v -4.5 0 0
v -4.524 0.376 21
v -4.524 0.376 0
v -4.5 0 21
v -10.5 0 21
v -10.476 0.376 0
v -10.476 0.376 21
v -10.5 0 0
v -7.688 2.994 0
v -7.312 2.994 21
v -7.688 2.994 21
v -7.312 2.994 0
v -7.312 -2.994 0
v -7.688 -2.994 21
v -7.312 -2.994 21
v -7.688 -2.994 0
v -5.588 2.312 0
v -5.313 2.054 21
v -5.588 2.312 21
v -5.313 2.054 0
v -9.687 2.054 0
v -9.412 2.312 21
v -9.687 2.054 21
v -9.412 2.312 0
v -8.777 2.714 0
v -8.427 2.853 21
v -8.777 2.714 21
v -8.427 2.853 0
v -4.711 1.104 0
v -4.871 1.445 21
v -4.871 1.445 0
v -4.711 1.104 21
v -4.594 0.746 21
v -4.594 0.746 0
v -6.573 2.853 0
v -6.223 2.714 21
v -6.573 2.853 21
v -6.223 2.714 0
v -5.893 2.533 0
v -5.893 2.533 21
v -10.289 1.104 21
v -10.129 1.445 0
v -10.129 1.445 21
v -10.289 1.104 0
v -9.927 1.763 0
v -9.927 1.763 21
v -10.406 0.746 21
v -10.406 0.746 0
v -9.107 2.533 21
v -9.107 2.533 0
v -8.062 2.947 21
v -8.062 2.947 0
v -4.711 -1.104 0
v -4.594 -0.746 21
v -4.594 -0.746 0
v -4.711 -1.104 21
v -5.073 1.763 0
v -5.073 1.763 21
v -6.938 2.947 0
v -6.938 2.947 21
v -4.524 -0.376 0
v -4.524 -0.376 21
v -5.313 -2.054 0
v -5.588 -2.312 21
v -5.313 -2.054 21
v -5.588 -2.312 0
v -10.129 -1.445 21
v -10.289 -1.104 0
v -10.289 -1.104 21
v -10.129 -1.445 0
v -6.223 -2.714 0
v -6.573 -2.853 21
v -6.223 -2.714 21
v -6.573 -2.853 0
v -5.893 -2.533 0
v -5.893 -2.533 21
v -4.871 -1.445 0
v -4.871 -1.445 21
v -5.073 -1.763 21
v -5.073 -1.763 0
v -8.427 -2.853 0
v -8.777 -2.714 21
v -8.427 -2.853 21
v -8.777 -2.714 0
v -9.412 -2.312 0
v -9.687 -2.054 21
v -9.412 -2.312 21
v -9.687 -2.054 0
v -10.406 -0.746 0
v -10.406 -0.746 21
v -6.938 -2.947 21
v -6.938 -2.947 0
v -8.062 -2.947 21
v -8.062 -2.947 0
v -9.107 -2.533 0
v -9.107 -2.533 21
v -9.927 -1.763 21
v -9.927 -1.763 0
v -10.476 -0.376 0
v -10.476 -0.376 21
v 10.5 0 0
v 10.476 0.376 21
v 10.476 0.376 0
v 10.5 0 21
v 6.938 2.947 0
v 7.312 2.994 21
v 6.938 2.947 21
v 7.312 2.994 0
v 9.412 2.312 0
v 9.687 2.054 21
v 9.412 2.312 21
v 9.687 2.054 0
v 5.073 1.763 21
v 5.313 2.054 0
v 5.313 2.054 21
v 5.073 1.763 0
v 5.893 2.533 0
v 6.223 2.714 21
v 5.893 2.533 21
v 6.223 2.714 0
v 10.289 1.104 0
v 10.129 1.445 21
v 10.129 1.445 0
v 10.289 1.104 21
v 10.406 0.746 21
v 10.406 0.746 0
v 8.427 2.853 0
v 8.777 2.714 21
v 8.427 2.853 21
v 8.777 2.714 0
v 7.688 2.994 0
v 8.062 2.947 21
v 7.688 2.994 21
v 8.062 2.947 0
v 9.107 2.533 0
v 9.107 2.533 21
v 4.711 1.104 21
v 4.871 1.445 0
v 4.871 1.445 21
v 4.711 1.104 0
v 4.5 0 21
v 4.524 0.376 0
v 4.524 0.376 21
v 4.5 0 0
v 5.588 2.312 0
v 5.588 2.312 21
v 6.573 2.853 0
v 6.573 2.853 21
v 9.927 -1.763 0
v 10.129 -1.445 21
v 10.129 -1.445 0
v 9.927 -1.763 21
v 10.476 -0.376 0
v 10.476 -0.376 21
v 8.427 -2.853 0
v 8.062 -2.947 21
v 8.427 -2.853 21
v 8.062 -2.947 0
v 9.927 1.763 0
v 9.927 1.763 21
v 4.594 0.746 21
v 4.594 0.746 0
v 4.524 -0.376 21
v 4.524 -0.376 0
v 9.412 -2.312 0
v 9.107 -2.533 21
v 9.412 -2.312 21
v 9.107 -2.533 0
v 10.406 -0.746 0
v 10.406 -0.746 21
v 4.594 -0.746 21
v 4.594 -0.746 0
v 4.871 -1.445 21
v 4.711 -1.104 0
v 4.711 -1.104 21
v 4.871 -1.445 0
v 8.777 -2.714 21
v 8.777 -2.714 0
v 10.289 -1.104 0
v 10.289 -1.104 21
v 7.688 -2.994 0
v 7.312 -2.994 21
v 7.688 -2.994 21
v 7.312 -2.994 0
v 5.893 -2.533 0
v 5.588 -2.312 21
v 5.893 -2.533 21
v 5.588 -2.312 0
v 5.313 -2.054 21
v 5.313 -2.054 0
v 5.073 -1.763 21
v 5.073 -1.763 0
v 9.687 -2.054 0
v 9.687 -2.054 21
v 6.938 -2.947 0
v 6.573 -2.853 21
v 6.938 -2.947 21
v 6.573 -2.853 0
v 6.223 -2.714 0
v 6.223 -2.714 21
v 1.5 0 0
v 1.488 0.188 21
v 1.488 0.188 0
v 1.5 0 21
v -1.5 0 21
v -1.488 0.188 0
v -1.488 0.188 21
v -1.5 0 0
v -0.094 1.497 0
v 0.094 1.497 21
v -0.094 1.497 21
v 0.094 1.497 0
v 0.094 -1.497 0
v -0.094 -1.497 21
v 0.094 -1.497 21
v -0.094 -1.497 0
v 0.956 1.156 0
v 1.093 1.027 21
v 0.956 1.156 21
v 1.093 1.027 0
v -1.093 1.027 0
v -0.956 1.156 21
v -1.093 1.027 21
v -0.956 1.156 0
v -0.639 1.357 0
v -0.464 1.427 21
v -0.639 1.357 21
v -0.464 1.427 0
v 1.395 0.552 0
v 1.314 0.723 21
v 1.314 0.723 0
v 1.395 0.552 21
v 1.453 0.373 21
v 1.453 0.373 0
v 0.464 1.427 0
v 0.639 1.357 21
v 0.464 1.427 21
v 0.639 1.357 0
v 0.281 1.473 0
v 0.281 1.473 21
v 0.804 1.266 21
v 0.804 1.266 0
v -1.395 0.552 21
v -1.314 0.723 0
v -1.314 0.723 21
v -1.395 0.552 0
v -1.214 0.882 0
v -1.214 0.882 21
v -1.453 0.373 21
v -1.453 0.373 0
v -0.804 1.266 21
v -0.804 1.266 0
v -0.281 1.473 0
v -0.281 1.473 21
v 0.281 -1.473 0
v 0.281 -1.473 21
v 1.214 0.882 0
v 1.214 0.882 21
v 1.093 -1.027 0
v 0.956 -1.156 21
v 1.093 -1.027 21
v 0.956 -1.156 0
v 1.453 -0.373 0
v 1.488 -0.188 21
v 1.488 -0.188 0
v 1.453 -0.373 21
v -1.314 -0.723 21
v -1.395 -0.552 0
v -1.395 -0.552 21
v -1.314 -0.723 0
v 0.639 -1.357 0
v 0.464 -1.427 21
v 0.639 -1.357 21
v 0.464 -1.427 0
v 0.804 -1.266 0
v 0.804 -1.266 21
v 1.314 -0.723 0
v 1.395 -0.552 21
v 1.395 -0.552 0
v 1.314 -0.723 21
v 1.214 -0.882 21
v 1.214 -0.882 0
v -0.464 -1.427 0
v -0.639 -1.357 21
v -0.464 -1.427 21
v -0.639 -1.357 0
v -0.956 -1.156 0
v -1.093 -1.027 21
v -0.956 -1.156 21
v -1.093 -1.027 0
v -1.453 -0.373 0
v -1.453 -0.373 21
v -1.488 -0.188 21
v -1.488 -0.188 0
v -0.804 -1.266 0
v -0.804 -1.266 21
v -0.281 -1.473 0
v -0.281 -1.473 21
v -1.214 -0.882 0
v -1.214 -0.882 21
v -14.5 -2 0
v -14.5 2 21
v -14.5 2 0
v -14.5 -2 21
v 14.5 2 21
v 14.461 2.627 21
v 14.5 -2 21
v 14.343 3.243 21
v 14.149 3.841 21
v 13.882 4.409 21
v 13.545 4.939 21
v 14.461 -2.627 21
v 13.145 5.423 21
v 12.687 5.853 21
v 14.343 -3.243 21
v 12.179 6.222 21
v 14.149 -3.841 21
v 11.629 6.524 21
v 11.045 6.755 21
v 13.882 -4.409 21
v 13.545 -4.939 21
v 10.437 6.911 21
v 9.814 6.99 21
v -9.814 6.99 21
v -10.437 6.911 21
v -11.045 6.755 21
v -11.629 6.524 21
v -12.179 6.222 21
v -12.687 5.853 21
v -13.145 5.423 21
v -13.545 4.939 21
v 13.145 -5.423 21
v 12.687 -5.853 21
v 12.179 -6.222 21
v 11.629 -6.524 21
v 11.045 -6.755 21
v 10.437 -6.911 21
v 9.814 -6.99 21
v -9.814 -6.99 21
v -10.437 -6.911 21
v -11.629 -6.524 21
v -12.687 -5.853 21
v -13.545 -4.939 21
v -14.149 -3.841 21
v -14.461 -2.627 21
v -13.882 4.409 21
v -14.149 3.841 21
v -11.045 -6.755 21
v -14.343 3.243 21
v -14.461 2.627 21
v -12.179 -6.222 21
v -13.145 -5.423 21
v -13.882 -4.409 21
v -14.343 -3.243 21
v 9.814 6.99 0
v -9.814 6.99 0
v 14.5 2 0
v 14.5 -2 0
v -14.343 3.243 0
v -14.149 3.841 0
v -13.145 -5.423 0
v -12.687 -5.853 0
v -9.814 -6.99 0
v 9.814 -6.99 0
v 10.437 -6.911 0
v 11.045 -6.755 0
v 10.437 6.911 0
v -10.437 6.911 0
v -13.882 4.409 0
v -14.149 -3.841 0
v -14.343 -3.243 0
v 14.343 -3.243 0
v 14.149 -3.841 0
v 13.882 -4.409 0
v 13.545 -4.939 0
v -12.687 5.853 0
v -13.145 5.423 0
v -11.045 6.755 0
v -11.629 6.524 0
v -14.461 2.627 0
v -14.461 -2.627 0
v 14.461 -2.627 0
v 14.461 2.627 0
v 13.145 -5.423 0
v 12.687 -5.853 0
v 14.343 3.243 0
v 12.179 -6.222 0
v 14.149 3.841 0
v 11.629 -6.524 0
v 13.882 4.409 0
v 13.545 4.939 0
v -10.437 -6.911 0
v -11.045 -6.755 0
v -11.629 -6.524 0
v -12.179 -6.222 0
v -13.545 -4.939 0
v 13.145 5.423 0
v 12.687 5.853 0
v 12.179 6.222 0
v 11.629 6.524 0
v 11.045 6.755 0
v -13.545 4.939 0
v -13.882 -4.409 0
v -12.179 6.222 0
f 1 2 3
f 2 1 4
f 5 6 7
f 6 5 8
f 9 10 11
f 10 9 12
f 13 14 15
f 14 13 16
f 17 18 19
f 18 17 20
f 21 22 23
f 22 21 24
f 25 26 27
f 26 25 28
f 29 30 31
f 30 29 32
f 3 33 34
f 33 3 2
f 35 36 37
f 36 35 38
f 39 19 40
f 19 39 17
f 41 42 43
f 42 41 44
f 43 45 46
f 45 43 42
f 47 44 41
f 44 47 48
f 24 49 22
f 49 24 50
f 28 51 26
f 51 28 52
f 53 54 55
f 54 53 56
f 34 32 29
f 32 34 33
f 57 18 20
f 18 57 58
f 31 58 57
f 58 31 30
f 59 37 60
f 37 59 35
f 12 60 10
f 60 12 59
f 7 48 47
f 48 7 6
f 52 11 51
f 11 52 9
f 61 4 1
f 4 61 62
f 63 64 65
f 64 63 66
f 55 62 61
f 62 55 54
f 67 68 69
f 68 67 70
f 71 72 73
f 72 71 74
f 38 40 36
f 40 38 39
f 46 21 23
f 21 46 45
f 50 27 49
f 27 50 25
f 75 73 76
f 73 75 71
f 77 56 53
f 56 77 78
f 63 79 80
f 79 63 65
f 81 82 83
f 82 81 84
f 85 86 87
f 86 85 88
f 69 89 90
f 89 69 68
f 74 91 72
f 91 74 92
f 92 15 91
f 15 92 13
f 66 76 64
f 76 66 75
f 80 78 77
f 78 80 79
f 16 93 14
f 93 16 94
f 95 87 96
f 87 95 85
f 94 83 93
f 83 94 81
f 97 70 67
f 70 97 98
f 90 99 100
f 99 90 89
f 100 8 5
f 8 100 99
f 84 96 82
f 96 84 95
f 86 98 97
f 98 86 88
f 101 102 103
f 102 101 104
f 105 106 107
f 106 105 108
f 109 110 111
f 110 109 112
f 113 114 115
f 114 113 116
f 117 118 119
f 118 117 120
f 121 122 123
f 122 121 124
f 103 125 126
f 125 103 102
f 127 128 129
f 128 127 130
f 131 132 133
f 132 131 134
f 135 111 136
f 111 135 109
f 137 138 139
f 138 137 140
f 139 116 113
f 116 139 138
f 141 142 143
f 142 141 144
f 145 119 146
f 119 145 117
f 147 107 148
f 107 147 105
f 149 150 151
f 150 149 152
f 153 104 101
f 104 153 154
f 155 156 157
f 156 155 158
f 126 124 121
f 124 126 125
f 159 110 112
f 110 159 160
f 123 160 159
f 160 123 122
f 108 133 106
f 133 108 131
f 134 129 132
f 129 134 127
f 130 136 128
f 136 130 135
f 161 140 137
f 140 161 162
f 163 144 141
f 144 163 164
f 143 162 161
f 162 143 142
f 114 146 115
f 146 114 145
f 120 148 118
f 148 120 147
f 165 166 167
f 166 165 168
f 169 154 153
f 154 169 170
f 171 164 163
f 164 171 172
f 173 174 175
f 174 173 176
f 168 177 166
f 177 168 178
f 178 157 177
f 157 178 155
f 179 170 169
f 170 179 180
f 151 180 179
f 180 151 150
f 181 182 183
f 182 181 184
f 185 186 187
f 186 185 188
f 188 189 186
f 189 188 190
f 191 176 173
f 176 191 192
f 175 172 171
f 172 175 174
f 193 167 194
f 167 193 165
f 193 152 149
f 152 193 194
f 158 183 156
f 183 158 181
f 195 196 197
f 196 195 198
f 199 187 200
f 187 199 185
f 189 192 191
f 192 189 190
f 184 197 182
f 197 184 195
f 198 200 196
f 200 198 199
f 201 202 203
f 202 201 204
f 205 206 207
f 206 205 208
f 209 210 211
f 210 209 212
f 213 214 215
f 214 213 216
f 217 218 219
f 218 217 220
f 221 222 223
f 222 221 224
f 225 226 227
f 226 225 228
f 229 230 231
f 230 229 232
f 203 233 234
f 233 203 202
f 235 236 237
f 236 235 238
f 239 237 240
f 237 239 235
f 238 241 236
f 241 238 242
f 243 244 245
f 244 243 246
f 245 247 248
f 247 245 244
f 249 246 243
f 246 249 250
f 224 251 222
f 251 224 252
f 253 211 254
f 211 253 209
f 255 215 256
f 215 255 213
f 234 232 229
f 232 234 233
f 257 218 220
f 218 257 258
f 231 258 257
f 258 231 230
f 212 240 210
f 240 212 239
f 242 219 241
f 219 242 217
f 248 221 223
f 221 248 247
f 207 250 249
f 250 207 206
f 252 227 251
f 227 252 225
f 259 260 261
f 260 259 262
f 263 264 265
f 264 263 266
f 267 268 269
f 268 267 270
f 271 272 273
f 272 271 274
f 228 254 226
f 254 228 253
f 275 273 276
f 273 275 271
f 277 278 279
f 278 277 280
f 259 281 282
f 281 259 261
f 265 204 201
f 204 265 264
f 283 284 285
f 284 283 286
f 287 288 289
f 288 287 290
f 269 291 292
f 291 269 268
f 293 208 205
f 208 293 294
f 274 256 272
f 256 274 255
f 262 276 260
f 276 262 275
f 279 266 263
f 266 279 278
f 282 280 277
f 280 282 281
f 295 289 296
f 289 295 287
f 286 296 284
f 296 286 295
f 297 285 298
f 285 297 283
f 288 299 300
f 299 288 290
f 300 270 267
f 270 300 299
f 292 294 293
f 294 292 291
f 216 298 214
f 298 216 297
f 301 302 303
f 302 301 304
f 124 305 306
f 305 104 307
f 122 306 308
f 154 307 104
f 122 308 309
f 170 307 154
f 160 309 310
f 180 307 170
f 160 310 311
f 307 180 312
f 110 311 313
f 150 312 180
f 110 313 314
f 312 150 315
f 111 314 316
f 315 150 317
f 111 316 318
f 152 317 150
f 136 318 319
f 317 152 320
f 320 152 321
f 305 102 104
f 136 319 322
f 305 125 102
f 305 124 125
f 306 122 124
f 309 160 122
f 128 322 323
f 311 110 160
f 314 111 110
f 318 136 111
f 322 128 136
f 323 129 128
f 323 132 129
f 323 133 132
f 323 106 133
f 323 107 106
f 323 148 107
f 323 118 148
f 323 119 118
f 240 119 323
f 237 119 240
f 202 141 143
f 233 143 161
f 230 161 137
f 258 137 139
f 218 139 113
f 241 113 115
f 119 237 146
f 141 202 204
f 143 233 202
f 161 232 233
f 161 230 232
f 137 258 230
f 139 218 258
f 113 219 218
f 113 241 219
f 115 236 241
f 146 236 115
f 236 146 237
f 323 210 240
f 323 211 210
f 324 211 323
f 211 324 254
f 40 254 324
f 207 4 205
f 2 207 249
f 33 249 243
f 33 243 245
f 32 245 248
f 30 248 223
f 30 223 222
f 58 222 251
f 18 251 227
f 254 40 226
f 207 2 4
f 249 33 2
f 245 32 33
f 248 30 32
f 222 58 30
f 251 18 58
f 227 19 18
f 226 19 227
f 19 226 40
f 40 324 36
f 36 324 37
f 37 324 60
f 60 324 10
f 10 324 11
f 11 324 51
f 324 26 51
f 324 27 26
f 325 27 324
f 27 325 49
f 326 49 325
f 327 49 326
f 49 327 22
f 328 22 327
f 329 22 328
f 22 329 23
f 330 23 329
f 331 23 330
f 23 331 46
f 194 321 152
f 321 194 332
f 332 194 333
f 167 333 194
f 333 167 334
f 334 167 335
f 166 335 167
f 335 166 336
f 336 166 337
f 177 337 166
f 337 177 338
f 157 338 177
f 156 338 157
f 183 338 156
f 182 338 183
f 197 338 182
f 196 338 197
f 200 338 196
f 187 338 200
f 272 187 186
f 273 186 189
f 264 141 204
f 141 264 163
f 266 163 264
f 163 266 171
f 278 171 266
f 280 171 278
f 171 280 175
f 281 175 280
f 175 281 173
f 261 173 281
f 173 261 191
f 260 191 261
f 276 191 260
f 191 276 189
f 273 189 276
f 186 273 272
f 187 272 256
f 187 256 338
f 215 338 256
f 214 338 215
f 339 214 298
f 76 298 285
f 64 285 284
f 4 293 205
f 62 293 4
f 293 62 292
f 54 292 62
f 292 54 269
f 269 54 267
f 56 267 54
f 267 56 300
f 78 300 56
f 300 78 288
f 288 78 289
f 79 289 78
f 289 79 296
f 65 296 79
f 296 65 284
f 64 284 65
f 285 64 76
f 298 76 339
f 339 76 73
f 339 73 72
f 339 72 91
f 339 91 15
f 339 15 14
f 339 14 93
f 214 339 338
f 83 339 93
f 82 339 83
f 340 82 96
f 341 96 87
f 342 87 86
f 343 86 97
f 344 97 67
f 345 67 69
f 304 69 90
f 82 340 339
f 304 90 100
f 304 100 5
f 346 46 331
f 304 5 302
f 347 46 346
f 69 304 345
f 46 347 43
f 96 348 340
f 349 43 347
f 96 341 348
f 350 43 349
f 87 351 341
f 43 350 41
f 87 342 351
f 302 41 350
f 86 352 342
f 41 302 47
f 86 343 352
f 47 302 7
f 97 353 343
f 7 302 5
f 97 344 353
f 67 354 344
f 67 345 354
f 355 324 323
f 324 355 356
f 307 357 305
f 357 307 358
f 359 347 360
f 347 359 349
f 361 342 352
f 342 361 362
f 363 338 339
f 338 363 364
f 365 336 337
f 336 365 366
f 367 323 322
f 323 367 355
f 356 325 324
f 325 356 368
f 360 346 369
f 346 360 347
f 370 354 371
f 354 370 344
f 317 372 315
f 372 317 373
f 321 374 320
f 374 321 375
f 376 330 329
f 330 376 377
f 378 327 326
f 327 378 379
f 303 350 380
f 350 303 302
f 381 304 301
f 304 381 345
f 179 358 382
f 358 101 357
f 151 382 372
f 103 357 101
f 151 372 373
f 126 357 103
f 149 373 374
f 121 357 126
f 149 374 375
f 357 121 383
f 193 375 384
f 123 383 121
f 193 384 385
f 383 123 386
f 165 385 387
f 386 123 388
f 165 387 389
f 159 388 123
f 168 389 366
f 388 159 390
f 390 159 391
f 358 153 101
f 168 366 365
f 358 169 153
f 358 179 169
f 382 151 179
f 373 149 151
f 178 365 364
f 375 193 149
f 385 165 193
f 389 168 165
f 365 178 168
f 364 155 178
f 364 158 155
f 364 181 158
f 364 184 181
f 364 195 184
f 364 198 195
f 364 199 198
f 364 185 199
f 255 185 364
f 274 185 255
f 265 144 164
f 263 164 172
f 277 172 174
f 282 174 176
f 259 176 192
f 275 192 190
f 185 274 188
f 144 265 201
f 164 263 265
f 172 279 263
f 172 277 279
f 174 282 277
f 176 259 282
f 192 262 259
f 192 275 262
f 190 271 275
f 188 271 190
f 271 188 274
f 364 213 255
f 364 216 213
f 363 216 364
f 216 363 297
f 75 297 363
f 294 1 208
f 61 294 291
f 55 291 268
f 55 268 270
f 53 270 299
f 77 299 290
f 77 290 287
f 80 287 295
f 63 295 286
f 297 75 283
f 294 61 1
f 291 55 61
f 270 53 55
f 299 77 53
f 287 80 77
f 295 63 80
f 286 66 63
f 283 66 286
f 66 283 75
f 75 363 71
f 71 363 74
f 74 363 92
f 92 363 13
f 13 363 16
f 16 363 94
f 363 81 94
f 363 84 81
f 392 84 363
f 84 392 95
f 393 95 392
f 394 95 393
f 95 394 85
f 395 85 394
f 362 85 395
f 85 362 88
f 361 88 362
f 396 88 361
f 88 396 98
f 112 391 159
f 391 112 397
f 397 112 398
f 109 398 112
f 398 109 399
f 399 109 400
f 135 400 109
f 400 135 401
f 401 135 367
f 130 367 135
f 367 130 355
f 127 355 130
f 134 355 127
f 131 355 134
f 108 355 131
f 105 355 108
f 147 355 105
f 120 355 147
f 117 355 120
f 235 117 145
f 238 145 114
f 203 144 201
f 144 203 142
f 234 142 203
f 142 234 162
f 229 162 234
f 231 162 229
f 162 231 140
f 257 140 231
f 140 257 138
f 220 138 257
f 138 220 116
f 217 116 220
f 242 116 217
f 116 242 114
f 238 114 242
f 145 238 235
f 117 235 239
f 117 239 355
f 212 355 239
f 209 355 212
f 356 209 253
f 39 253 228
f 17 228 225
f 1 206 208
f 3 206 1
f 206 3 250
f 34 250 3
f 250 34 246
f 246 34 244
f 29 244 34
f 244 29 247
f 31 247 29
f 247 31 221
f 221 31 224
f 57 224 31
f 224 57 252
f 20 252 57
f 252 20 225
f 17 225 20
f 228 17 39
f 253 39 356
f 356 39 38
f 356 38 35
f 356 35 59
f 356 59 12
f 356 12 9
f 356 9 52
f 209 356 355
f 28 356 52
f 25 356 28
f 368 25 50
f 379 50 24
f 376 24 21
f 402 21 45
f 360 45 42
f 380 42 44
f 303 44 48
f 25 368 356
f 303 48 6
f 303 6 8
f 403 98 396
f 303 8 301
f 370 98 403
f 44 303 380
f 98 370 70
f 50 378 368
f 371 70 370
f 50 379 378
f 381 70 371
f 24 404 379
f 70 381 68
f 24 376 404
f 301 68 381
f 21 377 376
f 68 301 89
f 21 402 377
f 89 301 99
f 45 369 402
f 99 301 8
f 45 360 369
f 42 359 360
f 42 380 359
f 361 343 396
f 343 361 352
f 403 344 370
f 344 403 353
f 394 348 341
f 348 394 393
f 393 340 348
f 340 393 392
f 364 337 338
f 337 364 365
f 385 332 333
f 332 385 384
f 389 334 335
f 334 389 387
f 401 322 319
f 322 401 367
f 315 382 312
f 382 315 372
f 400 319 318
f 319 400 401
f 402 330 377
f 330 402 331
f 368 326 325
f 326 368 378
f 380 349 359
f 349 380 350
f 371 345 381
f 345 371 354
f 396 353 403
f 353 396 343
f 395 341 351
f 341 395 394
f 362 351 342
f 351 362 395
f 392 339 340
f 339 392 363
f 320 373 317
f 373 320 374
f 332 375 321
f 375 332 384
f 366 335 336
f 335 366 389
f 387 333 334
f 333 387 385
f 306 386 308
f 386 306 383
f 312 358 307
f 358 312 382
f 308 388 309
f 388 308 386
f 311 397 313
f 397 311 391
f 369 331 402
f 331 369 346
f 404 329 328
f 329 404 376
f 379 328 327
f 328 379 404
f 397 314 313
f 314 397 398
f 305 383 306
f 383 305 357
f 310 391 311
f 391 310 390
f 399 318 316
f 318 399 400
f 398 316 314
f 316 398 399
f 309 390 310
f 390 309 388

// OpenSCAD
$fn = 50;


difference() {
	union() {
		translate(v = [0, 0, 0]) {
			rotate(a = [0, 0, 0]) {
				hull() {
					translate(v = [-9.5000000000, 2.0000000000, 0]) {
						rotate(a = [0, 0, 0]) {
							translate(v = [0, 0, 0]) {
								rotate(a = [0, 0, 0]) {
									cylinder(h = 21, r = 5);
								}
							}
						}
					}
					translate(v = [9.5000000000, 2.0000000000, 0]) {
						rotate(a = [0, 0, 0]) {
							translate(v = [0, 0, 0]) {
								rotate(a = [0, 0, 0]) {
									cylinder(h = 21, r = 5);
								}
							}
						}
					}
					translate(v = [-9.5000000000, -2.0000000000, 0]) {
						rotate(a = [0, 0, 0]) {
							translate(v = [0, 0, 0]) {
								rotate(a = [0, 0, 0]) {
									cylinder(h = 21, r = 5);
								}
							}
						}
					}
					translate(v = [9.5000000000, -2.0000000000, 0]) {
						rotate(a = [0, 0, 0]) {
							translate(v = [0, 0, 0]) {
								rotate(a = [0, 0, 0]) {
									cylinder(h = 21, r = 5);
								}
							}
						}
					}
				}
			}
		}
	}
	union() {
		translate(v = [-7.5000000000, 0.0000000000, 0]) {
			rotate(a = [0, 0, 0]) {
				translate(v = [0, 0, -50]) {
					rotate(a = [0, 0, 0]) {
						cylinder(h = 100, r = 3.0000000000);
					}
				}
			}
		}
		translate(v = [7.5000000000, 0.0000000000, 0]) {
			rotate(a = [0, 0, 0]) {
				translate(v = [0, 0, -50]) {
					rotate(a = [0, 0, 0]) {
						cylinder(h = 100, r = 3.0000000000);
					}
				}
			}
		}
		translate(v = [-7.5000000000, 0.0000000000, 0]) {
			rotate(a = [0, 0, 0]) {
				translate(v = [0, 0, -50]) {
					rotate(a = [0, 0, 0]) {
						cylinder(h = 100, r = 1.5000000000);
					}
				}
			}
		}
		translate(v = [0.0000000000, 0.0000000000, 0]) {
			rotate(a = [0, 0, 0]) {
				translate(v = [0, 0, -50]) {
					rotate(a = [0, 0, 0]) {
						cylinder(h = 100, r = 1.5000000000);
					}
				}
			}
		}
		translate(v = [7.5000000000, 0.0000000000, 0]) {
			rotate(a = [0, 0, 0]) {
				translate(v = [0, 0, -50]) {
					rotate(a = [0, 0, 0]) {
						cylinder(h = 100, r = 1.5000000000);
					}
				}
			}
		}
	}
}
